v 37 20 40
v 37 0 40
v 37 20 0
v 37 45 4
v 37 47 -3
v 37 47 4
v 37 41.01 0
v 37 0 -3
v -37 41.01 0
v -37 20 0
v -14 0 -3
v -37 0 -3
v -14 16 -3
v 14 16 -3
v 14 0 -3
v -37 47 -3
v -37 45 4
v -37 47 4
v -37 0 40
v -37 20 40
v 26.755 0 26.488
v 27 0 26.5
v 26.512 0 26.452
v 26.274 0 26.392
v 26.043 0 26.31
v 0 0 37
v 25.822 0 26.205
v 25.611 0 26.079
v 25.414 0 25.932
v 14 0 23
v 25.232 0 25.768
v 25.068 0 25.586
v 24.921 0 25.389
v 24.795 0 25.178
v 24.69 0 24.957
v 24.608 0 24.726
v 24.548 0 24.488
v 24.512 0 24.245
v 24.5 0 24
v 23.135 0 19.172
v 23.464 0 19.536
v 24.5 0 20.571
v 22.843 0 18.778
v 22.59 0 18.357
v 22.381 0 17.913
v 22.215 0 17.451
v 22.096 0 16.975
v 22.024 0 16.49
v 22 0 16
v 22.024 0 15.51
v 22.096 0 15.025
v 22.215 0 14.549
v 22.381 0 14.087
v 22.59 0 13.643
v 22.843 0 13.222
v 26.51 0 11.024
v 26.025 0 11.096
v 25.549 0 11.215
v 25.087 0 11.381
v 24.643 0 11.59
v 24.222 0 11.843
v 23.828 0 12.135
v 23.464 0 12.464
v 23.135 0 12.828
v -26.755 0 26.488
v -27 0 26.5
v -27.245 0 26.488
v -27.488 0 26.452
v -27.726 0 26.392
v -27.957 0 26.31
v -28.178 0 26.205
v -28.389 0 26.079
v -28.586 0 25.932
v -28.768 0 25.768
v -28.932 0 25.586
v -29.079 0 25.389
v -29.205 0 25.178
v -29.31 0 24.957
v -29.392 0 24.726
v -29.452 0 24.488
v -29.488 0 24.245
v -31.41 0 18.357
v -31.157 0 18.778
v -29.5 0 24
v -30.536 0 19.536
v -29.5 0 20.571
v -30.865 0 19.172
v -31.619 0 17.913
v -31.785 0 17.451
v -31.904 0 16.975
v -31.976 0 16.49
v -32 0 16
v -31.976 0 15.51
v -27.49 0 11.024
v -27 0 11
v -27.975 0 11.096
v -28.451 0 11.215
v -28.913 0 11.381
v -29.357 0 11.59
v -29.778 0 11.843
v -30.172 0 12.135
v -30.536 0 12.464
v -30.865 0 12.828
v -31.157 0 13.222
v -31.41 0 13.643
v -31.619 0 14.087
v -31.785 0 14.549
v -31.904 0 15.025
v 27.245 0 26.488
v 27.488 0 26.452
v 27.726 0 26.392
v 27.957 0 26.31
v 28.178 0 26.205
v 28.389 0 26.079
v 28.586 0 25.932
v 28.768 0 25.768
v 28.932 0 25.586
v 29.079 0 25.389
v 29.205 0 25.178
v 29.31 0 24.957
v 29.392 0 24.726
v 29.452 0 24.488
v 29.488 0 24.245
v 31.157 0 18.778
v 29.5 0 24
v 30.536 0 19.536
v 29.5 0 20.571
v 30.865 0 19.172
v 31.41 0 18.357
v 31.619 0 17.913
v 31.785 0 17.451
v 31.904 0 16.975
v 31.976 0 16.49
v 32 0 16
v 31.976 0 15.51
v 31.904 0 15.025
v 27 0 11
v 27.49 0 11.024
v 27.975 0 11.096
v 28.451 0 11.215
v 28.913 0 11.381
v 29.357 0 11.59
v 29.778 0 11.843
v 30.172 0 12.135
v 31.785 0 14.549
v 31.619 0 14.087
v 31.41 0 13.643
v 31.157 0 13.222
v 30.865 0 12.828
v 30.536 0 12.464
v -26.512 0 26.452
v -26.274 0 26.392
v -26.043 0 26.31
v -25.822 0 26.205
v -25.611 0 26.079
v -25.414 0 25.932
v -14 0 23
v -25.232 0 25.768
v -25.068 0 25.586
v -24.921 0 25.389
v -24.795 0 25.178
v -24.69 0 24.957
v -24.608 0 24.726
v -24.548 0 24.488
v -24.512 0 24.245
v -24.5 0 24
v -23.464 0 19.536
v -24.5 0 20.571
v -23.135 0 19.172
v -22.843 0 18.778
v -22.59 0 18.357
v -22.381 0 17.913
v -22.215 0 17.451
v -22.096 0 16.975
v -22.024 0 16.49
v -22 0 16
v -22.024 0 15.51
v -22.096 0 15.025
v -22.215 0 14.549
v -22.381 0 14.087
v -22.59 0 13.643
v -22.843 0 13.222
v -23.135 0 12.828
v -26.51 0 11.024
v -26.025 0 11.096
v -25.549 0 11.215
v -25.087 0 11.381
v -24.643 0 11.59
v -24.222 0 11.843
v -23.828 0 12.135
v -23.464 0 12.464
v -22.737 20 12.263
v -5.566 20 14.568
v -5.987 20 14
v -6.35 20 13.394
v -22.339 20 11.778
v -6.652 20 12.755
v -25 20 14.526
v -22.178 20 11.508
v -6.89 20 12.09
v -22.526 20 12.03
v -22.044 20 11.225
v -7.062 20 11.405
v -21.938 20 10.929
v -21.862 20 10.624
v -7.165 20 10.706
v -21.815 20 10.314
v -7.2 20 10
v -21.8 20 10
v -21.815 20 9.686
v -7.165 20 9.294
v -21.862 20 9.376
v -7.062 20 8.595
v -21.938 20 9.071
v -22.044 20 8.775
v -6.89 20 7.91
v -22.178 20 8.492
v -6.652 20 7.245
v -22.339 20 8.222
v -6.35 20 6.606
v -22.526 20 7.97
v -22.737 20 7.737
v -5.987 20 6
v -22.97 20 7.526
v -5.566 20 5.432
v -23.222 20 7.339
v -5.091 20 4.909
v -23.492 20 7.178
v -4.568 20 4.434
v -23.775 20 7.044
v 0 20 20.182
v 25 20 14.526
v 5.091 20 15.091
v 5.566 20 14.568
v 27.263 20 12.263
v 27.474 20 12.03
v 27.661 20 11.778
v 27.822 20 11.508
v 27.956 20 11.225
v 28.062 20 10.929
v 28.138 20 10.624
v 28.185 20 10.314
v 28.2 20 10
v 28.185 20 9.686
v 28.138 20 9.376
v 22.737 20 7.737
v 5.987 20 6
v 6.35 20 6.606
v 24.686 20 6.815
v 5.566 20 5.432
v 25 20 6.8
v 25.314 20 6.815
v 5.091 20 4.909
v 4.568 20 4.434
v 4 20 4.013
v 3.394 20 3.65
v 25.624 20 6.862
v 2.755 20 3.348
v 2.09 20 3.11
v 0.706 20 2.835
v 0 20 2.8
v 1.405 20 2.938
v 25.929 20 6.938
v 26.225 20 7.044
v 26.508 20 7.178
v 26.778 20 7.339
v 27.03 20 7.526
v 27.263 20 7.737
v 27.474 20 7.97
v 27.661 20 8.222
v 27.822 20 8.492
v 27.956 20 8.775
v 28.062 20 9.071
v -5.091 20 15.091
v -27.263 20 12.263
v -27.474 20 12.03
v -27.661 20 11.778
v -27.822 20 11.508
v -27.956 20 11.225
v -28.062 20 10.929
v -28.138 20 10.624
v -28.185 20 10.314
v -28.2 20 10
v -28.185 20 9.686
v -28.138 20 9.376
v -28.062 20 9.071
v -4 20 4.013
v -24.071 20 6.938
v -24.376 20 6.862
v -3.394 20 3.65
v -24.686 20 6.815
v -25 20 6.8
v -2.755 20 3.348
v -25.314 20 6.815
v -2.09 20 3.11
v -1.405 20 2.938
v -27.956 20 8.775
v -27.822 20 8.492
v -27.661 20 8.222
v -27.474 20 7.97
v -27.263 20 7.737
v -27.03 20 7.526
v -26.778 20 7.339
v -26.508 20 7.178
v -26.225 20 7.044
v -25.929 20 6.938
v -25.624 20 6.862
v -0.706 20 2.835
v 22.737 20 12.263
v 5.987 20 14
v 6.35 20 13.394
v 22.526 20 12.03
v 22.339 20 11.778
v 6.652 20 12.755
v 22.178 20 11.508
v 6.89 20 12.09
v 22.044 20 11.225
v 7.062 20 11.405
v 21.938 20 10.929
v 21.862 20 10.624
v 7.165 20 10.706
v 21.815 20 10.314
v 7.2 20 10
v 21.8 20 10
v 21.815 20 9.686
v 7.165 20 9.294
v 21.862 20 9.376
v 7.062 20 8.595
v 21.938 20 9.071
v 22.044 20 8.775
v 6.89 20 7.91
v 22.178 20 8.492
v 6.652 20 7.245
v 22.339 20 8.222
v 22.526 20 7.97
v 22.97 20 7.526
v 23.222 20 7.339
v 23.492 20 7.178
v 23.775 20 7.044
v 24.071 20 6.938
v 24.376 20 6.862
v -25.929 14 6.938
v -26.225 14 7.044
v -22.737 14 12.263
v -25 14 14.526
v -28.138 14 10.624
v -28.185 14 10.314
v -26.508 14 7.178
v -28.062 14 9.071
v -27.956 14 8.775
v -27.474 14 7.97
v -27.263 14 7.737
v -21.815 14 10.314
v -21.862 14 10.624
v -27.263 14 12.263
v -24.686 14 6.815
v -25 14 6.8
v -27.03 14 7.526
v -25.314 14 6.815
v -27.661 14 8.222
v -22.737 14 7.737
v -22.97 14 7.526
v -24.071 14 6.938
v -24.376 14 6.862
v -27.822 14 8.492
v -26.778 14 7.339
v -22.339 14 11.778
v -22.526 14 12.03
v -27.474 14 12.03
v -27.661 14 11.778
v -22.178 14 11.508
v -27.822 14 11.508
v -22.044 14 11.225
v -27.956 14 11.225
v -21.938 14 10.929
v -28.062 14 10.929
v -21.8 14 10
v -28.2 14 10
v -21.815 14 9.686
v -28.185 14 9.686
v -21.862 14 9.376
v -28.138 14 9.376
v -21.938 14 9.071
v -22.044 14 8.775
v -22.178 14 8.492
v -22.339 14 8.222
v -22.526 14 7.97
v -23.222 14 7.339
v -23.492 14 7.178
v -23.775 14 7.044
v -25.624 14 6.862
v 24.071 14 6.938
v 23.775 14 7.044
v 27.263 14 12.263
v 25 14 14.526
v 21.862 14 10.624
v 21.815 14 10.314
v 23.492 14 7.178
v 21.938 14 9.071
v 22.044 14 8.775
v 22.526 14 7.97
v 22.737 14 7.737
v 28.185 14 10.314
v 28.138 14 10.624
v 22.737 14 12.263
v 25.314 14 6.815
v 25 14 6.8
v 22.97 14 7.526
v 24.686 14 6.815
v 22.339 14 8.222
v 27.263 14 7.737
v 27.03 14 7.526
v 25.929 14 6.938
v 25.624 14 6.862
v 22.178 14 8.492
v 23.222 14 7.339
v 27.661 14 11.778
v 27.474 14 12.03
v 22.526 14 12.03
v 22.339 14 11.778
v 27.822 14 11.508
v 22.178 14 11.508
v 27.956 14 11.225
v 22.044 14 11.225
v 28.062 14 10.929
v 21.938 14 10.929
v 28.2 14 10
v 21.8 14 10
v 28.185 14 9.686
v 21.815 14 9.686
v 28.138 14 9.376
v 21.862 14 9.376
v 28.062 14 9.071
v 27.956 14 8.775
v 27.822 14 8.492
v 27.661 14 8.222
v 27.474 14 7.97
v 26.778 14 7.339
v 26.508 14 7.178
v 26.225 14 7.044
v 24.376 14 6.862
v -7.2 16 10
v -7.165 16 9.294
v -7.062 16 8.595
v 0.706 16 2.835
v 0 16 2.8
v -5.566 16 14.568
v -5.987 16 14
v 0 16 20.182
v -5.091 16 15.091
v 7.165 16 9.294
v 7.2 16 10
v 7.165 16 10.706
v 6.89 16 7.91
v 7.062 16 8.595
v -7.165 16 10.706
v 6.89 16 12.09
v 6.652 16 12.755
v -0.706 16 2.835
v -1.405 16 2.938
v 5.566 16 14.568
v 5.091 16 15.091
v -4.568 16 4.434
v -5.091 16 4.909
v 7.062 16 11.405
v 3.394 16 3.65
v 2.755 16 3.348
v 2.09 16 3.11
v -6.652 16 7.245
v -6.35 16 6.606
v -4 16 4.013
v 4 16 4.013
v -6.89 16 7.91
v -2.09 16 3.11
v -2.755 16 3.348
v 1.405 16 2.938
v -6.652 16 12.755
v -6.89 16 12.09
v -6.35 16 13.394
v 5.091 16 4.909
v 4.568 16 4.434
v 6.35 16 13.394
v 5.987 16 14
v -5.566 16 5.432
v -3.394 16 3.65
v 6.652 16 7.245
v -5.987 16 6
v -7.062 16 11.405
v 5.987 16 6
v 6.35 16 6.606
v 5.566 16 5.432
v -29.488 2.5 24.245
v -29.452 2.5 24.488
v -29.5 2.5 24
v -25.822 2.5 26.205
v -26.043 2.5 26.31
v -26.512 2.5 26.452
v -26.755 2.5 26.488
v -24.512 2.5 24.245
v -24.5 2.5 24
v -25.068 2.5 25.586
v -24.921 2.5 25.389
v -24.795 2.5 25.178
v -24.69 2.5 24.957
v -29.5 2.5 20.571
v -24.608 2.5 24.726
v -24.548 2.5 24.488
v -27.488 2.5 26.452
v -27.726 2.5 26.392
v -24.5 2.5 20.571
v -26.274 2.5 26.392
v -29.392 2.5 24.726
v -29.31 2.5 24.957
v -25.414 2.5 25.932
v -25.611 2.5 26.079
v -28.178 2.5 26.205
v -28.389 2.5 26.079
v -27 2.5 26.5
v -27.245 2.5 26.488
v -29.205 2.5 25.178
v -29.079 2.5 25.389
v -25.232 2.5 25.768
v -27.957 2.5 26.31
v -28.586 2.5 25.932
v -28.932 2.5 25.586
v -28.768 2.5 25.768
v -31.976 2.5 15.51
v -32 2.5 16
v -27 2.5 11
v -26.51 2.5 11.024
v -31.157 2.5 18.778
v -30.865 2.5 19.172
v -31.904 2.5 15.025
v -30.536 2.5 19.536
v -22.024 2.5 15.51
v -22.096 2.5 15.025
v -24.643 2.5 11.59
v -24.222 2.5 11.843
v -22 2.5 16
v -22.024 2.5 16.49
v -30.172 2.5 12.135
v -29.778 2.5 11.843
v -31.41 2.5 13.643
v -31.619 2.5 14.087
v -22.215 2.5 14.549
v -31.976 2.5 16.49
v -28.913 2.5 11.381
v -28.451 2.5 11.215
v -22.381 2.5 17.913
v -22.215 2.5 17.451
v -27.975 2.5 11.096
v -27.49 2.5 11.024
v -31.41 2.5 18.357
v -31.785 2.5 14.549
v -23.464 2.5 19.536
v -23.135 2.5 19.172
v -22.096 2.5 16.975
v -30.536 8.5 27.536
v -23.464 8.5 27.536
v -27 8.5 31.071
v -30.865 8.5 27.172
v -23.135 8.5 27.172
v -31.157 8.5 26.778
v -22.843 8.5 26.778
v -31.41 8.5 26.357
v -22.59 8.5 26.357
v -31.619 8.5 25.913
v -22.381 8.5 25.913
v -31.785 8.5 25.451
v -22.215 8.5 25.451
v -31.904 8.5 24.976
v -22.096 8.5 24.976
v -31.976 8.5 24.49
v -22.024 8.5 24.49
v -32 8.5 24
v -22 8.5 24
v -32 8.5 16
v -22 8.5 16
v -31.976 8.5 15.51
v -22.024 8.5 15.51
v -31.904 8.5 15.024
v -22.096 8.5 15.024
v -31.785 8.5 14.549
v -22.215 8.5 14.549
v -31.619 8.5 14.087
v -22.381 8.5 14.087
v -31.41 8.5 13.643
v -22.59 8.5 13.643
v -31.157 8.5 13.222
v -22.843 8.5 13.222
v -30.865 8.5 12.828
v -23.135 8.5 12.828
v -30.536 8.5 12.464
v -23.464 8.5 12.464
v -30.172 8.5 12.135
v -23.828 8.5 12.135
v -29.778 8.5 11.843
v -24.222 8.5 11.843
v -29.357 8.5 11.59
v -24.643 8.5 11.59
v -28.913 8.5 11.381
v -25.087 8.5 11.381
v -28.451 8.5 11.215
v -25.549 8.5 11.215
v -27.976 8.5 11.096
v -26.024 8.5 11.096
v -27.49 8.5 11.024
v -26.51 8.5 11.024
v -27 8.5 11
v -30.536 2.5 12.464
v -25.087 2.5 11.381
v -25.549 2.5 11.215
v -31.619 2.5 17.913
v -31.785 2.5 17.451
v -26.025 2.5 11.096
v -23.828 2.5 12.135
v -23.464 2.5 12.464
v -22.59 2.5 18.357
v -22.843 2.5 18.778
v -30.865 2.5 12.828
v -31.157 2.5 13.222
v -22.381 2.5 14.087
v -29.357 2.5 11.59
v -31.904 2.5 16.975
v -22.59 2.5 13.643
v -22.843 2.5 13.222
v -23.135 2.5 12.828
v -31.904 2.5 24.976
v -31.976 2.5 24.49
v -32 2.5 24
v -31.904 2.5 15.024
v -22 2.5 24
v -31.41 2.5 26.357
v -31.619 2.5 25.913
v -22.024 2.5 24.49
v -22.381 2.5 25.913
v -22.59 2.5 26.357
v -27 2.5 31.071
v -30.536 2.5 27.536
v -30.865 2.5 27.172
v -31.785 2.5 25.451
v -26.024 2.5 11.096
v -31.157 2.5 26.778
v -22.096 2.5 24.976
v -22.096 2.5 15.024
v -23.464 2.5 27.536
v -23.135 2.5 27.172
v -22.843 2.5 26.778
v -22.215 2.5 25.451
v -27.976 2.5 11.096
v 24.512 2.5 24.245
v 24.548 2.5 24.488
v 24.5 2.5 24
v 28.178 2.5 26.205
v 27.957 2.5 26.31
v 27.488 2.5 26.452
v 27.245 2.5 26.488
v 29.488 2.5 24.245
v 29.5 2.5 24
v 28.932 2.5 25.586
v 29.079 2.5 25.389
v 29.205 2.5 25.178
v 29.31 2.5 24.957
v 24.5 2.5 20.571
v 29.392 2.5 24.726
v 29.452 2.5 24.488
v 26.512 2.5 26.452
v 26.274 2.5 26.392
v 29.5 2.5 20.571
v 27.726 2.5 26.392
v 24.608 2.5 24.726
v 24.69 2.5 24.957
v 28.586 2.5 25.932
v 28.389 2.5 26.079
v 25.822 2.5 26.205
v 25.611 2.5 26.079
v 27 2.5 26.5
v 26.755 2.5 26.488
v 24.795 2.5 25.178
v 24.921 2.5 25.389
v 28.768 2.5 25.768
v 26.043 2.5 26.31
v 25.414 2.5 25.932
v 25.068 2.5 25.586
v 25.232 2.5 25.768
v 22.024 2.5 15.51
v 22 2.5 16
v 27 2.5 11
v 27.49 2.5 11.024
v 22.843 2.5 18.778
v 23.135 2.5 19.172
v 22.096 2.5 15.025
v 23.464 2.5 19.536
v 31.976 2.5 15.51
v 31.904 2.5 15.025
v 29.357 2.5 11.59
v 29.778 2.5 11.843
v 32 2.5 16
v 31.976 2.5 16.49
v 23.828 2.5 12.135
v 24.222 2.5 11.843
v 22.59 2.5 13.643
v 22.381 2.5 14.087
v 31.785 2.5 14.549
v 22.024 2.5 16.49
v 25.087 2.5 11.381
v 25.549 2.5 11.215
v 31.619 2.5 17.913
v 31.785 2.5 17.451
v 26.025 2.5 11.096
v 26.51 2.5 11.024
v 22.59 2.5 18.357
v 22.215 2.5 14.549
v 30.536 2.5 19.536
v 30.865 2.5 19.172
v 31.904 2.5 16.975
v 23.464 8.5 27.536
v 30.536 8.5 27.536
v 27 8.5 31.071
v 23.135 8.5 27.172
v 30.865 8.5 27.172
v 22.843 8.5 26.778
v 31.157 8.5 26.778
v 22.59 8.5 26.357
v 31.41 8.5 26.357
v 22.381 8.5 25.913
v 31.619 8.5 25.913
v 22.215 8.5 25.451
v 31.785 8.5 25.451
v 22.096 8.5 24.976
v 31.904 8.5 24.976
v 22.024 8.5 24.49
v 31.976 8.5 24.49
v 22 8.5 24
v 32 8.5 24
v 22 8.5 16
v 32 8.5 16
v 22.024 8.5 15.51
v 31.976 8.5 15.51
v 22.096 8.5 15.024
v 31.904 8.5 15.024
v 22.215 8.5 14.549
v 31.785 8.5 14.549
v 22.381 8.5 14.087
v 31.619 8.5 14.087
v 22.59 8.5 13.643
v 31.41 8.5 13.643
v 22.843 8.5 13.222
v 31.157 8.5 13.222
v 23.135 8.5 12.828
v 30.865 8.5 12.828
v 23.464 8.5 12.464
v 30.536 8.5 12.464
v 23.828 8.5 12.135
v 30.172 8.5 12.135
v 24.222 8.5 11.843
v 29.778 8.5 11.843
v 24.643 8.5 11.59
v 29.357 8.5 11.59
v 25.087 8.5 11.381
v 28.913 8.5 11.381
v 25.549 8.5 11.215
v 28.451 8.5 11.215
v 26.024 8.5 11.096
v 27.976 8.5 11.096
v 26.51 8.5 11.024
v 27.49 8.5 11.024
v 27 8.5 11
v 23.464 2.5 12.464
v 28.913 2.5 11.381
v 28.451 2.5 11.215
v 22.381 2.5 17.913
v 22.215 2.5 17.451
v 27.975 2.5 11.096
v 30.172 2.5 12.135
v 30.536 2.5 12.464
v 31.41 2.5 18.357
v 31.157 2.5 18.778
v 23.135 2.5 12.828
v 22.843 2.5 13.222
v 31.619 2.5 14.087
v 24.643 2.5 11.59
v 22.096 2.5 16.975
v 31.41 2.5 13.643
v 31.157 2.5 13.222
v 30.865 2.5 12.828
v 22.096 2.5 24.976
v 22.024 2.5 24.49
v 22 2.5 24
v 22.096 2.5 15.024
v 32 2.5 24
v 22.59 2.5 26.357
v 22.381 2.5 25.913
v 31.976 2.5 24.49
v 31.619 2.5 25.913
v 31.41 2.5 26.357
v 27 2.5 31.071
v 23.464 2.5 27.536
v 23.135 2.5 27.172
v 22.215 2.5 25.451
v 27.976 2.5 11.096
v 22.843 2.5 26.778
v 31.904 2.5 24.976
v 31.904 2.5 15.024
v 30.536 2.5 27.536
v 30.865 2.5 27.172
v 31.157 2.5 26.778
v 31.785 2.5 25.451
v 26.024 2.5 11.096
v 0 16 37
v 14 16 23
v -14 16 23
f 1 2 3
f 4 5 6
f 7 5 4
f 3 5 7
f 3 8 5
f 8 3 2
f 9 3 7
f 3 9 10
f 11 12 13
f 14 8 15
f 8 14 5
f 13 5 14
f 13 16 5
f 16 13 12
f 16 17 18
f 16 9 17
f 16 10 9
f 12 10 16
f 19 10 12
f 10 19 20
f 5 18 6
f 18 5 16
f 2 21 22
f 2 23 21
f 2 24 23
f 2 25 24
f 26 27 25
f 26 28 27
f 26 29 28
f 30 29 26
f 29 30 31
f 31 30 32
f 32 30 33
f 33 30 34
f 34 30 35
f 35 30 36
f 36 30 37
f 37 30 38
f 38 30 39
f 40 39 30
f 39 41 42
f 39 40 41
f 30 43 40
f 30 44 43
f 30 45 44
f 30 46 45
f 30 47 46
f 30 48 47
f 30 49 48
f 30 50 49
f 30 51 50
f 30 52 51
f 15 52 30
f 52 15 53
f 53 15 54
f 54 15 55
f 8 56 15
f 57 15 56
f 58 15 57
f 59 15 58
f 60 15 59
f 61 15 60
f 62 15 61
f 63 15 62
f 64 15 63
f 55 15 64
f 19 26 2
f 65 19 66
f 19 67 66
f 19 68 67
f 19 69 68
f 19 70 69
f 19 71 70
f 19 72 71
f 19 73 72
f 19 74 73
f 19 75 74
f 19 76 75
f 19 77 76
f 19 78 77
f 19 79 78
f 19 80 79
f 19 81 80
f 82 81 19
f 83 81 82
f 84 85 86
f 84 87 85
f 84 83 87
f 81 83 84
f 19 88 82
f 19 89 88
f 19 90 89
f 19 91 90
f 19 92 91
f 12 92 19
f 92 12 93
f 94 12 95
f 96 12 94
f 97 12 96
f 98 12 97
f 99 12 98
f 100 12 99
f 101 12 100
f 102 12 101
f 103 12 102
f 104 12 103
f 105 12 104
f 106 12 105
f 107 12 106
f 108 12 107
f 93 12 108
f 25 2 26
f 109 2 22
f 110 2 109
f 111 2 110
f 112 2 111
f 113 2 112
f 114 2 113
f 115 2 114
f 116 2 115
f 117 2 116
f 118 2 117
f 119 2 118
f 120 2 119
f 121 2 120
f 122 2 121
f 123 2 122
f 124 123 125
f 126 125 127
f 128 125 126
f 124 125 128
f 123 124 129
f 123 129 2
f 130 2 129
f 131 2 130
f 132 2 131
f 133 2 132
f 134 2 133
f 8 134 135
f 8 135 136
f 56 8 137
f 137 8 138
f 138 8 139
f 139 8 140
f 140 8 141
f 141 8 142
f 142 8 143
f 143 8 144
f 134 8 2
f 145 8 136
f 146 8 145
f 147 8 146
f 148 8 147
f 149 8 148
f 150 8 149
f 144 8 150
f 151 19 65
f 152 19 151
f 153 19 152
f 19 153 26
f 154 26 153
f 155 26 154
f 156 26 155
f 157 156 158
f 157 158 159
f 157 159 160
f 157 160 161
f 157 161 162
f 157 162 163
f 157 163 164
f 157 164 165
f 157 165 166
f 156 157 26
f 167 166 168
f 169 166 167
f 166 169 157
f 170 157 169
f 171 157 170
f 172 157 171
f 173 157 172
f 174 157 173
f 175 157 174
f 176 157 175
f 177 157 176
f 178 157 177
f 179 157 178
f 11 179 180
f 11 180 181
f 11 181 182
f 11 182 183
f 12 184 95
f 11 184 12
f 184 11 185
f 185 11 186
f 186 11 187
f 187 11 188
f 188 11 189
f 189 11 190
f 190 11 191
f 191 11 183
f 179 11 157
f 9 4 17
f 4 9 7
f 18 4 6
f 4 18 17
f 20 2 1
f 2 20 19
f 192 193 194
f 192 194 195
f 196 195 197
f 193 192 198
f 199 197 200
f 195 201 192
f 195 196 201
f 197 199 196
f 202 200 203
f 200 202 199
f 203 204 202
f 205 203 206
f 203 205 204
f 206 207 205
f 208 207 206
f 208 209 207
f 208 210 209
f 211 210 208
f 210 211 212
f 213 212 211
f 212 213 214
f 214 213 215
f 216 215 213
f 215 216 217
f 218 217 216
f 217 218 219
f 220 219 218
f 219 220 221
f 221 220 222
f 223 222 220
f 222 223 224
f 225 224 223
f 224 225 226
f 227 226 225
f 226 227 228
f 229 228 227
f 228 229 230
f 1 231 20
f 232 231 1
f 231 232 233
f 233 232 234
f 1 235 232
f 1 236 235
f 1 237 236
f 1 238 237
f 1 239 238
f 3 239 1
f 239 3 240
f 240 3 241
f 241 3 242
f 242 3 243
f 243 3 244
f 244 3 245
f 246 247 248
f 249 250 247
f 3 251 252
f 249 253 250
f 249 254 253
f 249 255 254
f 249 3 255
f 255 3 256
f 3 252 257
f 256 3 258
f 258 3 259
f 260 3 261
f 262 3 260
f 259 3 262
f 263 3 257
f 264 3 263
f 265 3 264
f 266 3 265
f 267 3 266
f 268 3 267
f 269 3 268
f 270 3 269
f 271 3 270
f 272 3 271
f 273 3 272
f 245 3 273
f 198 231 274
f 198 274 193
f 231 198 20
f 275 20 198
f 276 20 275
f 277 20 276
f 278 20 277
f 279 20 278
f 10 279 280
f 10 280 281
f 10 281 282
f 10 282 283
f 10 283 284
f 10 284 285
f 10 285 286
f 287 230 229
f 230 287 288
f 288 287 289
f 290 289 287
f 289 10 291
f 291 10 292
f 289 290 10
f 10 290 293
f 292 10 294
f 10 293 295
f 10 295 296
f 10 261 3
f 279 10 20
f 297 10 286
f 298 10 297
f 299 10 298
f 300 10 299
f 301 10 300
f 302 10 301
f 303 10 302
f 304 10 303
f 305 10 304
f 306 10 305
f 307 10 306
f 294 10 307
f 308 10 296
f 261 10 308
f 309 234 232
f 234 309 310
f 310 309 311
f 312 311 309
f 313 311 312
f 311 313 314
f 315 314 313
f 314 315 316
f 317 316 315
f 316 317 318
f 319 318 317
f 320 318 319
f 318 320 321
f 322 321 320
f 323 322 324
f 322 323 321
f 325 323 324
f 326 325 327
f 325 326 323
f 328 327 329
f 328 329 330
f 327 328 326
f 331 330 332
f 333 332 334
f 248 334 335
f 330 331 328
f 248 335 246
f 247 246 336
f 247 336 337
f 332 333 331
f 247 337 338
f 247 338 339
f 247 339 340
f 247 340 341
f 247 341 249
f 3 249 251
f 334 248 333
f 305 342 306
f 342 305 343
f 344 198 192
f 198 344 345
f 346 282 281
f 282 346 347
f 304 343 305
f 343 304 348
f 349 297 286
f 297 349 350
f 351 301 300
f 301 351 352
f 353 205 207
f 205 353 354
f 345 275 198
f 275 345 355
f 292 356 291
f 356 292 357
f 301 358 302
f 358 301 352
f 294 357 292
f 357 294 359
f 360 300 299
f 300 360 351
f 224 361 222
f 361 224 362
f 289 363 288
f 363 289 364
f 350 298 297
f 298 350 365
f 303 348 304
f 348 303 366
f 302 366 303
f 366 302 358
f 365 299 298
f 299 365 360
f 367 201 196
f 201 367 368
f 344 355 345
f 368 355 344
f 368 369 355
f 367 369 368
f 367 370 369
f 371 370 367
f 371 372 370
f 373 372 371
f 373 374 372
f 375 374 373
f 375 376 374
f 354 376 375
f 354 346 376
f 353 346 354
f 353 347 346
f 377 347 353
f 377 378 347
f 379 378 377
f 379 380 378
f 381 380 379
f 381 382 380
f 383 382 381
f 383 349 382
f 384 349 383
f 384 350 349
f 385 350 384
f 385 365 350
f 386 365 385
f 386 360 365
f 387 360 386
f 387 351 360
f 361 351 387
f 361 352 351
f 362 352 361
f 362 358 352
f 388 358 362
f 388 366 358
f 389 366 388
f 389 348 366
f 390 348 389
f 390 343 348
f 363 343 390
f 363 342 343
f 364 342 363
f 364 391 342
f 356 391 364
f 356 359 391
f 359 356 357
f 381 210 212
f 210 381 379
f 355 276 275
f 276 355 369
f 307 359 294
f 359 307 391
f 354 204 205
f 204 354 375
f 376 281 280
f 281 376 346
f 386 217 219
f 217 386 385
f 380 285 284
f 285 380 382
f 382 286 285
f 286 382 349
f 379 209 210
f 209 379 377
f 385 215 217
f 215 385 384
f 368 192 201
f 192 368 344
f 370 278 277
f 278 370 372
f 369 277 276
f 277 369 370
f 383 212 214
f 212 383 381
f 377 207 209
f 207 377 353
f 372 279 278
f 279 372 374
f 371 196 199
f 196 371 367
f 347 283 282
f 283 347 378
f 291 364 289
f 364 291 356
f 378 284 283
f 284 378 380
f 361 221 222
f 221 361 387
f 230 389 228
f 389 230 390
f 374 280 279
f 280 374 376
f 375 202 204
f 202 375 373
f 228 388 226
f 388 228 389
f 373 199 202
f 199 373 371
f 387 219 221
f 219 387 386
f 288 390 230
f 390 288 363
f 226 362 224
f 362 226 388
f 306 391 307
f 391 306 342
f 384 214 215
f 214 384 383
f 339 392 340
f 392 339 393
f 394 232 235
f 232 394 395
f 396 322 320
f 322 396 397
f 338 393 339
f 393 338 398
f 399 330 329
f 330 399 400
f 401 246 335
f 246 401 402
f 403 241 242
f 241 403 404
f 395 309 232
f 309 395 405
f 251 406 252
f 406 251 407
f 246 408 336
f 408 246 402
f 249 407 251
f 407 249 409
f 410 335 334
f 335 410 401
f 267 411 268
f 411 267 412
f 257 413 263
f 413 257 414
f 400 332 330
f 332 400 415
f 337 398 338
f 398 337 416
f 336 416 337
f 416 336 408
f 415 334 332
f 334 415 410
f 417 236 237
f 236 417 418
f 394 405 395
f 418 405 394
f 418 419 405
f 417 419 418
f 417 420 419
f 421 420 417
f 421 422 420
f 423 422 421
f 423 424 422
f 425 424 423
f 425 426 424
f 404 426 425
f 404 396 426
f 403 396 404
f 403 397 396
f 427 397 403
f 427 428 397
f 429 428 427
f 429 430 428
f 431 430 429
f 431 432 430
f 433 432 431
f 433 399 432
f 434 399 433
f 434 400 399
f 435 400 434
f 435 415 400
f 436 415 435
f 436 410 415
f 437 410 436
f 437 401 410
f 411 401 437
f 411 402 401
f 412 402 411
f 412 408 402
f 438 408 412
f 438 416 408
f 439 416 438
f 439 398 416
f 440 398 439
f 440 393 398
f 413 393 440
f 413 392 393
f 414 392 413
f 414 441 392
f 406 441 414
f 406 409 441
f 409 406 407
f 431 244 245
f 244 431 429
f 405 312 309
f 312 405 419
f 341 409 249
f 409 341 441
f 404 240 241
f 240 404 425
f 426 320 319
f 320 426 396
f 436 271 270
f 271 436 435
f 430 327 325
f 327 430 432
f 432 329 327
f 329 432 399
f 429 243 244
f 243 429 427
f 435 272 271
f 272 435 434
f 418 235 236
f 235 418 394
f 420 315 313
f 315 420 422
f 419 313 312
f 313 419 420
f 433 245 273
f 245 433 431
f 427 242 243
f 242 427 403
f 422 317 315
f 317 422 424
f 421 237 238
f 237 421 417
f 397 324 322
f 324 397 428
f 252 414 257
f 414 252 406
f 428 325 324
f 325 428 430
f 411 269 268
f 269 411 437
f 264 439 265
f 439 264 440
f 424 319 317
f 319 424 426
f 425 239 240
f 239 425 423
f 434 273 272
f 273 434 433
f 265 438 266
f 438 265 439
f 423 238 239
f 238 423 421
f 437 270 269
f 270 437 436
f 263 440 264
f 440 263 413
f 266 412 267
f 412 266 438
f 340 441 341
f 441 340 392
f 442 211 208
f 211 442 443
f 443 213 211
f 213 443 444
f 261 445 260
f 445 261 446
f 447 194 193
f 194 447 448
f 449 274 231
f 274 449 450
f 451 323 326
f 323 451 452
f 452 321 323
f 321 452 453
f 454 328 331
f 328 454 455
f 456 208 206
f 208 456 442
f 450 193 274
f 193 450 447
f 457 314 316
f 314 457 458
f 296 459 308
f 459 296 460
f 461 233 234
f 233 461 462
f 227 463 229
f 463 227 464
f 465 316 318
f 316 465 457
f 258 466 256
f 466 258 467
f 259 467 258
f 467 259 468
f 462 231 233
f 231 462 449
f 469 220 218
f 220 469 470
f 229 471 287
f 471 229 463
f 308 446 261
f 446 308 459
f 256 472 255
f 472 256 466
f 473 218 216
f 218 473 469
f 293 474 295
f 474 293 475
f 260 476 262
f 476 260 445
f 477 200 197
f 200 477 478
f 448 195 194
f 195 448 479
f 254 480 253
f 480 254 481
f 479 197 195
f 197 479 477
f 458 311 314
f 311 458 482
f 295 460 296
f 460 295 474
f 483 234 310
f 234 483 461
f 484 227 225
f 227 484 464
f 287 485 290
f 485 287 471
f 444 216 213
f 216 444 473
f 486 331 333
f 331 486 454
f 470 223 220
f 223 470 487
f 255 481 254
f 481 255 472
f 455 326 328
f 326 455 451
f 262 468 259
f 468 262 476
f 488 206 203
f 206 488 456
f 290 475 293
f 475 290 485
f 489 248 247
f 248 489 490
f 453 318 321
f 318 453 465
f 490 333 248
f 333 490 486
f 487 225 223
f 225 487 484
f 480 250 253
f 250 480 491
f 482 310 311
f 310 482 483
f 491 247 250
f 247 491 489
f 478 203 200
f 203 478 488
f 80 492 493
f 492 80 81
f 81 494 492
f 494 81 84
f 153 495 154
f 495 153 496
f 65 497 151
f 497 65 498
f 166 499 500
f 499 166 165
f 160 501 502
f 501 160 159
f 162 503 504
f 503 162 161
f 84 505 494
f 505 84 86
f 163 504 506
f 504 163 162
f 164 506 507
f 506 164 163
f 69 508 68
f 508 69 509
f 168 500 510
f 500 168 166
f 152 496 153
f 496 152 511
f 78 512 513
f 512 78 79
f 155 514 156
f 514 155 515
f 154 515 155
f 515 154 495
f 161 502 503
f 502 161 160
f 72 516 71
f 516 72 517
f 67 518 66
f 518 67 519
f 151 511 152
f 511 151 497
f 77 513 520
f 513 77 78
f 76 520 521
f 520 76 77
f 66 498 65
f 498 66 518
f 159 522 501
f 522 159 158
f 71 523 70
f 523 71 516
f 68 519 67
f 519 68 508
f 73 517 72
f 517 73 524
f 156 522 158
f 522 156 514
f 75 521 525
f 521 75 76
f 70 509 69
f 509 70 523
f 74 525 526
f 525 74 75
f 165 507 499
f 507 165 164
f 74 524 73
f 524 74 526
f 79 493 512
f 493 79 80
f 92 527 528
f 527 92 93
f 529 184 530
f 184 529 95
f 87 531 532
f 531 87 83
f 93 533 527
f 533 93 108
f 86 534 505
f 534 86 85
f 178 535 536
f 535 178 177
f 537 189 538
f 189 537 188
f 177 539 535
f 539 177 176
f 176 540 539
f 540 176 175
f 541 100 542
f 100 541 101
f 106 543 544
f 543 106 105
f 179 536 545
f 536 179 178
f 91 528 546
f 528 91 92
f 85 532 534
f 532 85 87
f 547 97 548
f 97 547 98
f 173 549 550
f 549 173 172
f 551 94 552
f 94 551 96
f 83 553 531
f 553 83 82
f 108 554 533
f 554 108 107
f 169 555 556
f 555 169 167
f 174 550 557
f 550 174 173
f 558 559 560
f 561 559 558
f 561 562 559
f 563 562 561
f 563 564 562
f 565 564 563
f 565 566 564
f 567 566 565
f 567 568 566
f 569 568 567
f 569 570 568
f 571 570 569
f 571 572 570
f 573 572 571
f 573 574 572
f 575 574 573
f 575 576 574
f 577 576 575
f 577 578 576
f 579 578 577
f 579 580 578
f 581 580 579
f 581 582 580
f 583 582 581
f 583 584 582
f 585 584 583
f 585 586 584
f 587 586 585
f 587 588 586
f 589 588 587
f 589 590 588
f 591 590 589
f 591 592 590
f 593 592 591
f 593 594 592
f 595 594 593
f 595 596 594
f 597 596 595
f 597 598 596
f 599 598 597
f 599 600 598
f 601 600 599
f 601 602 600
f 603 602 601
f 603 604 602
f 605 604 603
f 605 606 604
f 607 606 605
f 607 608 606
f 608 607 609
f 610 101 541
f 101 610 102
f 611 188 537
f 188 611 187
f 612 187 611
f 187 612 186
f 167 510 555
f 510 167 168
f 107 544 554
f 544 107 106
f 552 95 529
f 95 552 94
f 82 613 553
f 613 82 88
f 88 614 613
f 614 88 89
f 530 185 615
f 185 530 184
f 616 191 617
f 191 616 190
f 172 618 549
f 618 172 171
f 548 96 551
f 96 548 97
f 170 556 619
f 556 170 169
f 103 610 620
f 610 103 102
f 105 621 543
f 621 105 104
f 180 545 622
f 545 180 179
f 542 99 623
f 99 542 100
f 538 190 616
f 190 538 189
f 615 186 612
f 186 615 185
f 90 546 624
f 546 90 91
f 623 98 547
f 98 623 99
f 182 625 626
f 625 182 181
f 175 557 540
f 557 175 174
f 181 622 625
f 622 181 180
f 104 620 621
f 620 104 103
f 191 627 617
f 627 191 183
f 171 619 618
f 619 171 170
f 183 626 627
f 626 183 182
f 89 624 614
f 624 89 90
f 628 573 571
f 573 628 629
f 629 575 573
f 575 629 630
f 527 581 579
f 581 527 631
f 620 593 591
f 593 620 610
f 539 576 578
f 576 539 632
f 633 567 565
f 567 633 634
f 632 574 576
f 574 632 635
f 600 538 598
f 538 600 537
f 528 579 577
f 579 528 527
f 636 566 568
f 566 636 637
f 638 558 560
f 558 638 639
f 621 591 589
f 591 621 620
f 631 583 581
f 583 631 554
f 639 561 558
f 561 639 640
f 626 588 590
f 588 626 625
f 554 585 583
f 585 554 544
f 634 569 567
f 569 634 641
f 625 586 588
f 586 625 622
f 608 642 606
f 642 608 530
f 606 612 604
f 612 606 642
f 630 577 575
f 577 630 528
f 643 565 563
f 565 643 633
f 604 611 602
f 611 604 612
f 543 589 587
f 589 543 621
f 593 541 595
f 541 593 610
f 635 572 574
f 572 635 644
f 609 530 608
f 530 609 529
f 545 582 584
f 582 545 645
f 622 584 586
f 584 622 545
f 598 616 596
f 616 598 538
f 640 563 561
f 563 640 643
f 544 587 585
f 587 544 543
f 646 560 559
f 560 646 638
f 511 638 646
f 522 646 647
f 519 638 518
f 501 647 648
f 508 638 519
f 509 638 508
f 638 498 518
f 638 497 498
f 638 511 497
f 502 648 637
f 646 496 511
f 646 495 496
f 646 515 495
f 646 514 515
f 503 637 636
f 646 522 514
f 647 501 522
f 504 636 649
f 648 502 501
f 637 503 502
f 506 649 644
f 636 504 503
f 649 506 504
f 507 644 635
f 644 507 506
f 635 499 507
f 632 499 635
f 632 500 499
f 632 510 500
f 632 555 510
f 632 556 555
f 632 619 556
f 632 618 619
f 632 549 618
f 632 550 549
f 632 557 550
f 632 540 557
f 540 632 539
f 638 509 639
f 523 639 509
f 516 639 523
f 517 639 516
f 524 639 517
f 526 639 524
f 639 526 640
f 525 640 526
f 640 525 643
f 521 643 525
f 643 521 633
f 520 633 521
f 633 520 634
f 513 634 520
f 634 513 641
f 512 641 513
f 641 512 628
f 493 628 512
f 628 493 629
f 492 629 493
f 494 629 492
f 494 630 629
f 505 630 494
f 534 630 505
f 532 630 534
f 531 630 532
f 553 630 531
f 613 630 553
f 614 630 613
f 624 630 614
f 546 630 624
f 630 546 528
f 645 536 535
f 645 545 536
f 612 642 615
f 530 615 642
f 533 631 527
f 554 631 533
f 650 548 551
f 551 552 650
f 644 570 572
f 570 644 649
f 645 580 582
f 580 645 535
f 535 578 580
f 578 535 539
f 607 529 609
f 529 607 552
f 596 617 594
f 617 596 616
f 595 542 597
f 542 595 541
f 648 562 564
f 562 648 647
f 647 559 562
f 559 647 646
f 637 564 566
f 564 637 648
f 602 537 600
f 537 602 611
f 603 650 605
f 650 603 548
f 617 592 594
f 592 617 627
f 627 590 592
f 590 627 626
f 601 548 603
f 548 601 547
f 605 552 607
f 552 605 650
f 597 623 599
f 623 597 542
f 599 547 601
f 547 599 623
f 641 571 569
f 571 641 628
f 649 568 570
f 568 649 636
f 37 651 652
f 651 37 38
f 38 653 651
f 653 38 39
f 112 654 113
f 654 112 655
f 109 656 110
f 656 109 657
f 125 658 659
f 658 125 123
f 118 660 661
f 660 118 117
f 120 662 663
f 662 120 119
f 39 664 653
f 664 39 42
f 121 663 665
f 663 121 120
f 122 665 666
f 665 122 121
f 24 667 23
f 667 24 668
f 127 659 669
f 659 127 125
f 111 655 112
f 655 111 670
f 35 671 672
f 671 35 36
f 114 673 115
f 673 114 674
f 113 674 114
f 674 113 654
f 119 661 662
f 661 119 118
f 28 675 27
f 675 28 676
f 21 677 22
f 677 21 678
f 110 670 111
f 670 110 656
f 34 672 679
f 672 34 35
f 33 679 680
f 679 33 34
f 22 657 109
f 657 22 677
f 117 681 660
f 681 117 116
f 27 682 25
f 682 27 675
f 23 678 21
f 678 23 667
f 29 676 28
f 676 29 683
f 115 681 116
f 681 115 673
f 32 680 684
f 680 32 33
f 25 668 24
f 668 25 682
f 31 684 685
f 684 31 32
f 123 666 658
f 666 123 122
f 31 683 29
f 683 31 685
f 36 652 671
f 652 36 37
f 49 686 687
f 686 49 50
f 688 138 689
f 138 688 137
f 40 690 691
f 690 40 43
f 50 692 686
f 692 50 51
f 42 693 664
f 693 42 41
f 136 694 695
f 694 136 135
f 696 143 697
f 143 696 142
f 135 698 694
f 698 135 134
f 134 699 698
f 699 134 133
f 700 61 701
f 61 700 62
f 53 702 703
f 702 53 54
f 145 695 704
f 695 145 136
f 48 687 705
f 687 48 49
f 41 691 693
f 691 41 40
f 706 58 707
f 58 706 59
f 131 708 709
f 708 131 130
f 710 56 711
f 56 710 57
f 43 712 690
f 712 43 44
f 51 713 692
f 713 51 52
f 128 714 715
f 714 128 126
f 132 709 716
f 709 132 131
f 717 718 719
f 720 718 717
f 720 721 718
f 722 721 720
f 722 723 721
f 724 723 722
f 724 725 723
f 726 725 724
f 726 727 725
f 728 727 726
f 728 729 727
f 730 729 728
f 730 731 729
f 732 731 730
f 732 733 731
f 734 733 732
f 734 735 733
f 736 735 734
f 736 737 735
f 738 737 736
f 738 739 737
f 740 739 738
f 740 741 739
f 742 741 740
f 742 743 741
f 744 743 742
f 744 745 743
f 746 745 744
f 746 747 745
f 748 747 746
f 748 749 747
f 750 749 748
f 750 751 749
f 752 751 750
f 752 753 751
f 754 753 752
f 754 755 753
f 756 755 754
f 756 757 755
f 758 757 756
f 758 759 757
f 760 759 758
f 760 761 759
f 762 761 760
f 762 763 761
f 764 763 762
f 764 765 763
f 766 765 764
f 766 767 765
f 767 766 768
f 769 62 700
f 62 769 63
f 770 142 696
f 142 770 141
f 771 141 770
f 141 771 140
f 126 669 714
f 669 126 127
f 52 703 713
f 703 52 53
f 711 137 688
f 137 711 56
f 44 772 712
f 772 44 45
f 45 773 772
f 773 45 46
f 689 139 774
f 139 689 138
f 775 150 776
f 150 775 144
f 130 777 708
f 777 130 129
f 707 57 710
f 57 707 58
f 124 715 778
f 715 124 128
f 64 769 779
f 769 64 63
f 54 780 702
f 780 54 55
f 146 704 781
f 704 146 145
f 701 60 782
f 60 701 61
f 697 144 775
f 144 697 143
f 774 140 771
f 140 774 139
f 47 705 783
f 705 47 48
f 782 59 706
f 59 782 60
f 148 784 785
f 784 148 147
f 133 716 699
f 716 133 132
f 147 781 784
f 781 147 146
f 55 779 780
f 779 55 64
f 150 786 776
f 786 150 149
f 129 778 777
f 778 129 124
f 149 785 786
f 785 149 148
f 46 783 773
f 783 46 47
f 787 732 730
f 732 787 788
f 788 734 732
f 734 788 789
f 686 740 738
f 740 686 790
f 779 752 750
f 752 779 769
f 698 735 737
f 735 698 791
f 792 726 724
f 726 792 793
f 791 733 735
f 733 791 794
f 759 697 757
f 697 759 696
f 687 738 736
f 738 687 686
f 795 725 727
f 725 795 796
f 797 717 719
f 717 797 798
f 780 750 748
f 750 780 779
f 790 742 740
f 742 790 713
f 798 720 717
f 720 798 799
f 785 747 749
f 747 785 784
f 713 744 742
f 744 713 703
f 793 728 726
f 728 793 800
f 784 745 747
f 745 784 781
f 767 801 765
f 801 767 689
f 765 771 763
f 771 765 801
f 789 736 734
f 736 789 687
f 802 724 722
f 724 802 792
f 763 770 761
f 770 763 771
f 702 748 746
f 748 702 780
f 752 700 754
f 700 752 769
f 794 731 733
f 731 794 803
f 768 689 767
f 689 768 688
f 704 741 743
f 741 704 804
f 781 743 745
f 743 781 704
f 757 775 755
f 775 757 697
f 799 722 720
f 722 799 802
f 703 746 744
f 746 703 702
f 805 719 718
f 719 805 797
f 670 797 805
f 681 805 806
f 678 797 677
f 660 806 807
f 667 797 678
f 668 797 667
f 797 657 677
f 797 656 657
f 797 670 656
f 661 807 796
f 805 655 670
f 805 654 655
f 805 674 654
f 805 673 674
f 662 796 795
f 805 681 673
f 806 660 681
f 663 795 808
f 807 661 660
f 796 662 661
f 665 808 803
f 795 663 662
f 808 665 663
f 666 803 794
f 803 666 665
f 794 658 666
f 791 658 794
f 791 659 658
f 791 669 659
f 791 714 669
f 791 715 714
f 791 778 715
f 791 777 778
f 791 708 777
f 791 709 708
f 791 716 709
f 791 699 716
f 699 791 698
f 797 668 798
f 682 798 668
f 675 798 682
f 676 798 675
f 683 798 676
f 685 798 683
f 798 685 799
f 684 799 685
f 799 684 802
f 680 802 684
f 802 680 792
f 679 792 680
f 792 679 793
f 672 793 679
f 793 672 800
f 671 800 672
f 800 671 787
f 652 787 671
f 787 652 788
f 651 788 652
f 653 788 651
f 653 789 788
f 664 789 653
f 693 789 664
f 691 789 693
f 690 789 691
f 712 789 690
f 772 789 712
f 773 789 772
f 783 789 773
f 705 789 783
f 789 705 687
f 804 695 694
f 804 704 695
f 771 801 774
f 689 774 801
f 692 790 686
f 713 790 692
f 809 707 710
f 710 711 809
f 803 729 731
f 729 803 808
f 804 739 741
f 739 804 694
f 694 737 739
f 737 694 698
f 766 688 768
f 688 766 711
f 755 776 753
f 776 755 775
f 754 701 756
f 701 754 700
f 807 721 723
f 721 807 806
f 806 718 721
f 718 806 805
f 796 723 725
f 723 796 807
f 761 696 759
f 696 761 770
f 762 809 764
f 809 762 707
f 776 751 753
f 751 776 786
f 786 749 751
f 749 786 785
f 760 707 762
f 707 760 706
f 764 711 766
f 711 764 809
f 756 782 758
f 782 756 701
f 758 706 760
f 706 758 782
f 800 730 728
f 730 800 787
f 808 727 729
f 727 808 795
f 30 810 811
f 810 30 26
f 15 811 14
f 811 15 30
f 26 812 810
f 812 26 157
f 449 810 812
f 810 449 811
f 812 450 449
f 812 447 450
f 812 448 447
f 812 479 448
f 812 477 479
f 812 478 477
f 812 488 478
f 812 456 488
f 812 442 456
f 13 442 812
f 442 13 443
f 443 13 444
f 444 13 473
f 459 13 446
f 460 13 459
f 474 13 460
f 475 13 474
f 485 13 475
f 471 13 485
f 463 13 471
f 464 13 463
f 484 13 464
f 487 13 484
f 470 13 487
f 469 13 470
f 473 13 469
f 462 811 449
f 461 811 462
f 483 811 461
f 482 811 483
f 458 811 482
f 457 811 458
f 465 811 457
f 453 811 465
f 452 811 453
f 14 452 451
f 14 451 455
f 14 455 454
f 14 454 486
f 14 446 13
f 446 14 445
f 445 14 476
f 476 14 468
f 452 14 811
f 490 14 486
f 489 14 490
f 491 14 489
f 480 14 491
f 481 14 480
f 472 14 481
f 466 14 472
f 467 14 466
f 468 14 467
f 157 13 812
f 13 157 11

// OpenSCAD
// Playdate magnetic dock: wall bracket
//
// Replaces the angled desk foot ("playdate base.stl") of the MakerWorld model
// 1635754 so the dock hangs flat on a wall. It clamps onto the dock with the
// original cable nut and the two alignment pegs, exactly like the desk foot,
// and hangs on two wall screws through keyhole slots on its back.
//
// Coordinates (as mounted): X along the wall, Y away from the wall, Z up.
// The wall is the plane y = 0; the bottom edge of the dock sits at z = 0.
//
// Print upright, as mounted (the ledge flat on the bed). No supports needed.
//
// Values marked MEASURE are estimates taken from the model's photos. Check
// them against your printed dock (calipers on the original foot are best)
// before printing.

/* [Dock interface] */
dock_width      = 78;    // MEASURE: dock outer width
dock_depth      = 16;    // MEASURE: dock thickness, back plate to magnet face
iface_z         = 10;    // MEASURE: dock bottom edge to centre of cable nut
peg_spacing     = 50;    // MEASURE: centre-to-centre of the two alignment pegs
peg_d           = 6.0;   // MEASURE: alignment peg diameter
peg_depth       = 6;     // depth of the peg sockets
holder_d        = 14.0;  // MEASURE: OD of the threaded nut holder boss
mount_t         = 4;     // MEASURE: thickness of the original foot's top plate
                         // (the holder thread is sized to clamp this)
nut_flange_d    = 22;    // MEASURE: largest diameter of the cable nut
clearance       = 0.4;   // added to hole diameters for fit

/* [Bracket] */
standoff        = 20;    // wall to dock back; room for the nut and cable bend
bracket_h       = 40;    // height of the bracket behind the dock
width_inset     = 2;     // bracket is this much narrower than the dock per side

/* [Playdate safety ledge] */
ledge           = true;  // shelf under the dock and Playdate, in case it slips
ledge_t         = 3;     // shelf thickness
playdate_depth  = 9;     // Playdate thickness
ledge_extra     = 2;     // extra shelf depth beyond the Playdate
lip_h           = 4;     // raised lip at the front edge of the shelf

/* [Wall screws] */
screw_spacing   = 54;    // horizontal distance between the two wall screws
screw_shank_d   = 4.5;   // #8 / 4 mm wood screw
screw_head_d    = 9.0;
keyhole_travel  = 8;     // how far the bracket drops onto the screws
keyhole_z       = 16;    // height of the entry holes
keyhole_wall    = 2.5;   // material between wall and screw head

$fn = 64;
eps = 0.01;

bw        = dock_width - 2 * width_inset;
cavity_d  = standoff - mount_t;
cavity_w  = nut_flange_d + 6;
cavity_top = iface_z + nut_flange_d / 2 + 2;

assert(cavity_top + cavity_w / 2 <= bracket_h - 2,
       "bracket_h too small: nut cavity roof would break through the top");
assert(peg_spacing / 2 + peg_d / 2 + 2 <= bw / 2,
       "peg sockets fall outside the bracket");

// Horizontal hole that prints without supports: a circle with a 45 degree
// peak on top. Axis along Y, spanning y0..y1.
module teardrop_y(d, y0, y1) {
    translate([0, y1, 0]) rotate([90, 0, 0])
        linear_extrude(y1 - y0)
            union() {
                circle(d = d);
                rotate(45) square(d / 2);
            }
}

module body() {
    translate([-bw / 2, 0, 0]) cube([bw, standoff, bracket_h]);
    if (ledge) {
        shelf = standoff + dock_depth + playdate_depth + ledge_extra;
        translate([-bw / 2, 0, -ledge_t]) cube([bw, shelf, ledge_t]);
        // Front lip with a 45 degree back face so it prints cleanly.
        translate([-bw / 2, shelf, 0]) rotate([90, 0, 90])
            linear_extrude(bw)
                polygon([[0, -eps], [0, lip_h], [-2, lip_h], [-2 - lip_h, -eps]]);
    }
}

// Pocket behind the mount plate for the cable nut. Open to the wall (so the
// nut can be tightened before hanging) and open at the bottom, through the
// ledge, so the cable can bend down and out. The pointed roof prints without support.
module nut_cavity() {
    top = cavity_top;
    translate([0, -eps, 0]) rotate([-90, 0, 0])
        linear_extrude(cavity_d + eps)
            mirror([0, 1, 0])
                polygon([
                    [-cavity_w / 2, -ledge_t - 1],
                    [ cavity_w / 2, -ledge_t - 1],
                    [ cavity_w / 2, top],
                    [0, top + cavity_w / 2],
                    [-cavity_w / 2, top],
                ]);
}

module dock_holes() {
    translate([0, 0, iface_z]) {
        teardrop_y(holder_d + clearance, cavity_d - eps, standoff + eps);
        for (sx = [-1, 1])
            translate([sx * peg_spacing / 2, 0, 0])
                teardrop_y(peg_d + clearance, standoff - peg_depth, standoff + eps);
    }
}

// Keyhole: the screw head enters the round hole, then the bracket drops so
// the shank rides up the slot and the head is trapped behind keyhole_wall.
module keyhole() {
    head  = screw_head_d + 1;
    shank = screw_shank_d + 0.5;
    pocket = screw_head_d * 0.5 + 1.5;   // depth of the head pocket
    // shank slot through the wall-side skin
    translate([0, -eps, 0]) rotate([-90, 0, 0])
        linear_extrude(keyhole_wall + 2 * eps)
            hull() {
                circle(d = shank);
                translate([0, -keyhole_travel]) circle(d = shank);
            }
    // entry hole for the head
    teardrop_y(head, -eps, keyhole_wall + pocket);
    // pocket the head slides along
    translate([0, keyhole_wall, 0]) rotate([-90, 0, 0])
        linear_extrude(pocket)
            hull() {
                circle(d = head);
                // peak at the top of the slot so the pocket roof self-supports
                translate([0, -keyhole_travel]) rotate(225) square(head / 2);
                translate([0, -keyhole_travel]) circle(d = head);
            }
}

module bracket() {
    difference() {
        body();
        nut_cavity();
        dock_holes();
        for (sx = [-1, 1])
            translate([sx * screw_spacing / 2, 0, keyhole_z]) keyhole();
    }
}

bracket();
